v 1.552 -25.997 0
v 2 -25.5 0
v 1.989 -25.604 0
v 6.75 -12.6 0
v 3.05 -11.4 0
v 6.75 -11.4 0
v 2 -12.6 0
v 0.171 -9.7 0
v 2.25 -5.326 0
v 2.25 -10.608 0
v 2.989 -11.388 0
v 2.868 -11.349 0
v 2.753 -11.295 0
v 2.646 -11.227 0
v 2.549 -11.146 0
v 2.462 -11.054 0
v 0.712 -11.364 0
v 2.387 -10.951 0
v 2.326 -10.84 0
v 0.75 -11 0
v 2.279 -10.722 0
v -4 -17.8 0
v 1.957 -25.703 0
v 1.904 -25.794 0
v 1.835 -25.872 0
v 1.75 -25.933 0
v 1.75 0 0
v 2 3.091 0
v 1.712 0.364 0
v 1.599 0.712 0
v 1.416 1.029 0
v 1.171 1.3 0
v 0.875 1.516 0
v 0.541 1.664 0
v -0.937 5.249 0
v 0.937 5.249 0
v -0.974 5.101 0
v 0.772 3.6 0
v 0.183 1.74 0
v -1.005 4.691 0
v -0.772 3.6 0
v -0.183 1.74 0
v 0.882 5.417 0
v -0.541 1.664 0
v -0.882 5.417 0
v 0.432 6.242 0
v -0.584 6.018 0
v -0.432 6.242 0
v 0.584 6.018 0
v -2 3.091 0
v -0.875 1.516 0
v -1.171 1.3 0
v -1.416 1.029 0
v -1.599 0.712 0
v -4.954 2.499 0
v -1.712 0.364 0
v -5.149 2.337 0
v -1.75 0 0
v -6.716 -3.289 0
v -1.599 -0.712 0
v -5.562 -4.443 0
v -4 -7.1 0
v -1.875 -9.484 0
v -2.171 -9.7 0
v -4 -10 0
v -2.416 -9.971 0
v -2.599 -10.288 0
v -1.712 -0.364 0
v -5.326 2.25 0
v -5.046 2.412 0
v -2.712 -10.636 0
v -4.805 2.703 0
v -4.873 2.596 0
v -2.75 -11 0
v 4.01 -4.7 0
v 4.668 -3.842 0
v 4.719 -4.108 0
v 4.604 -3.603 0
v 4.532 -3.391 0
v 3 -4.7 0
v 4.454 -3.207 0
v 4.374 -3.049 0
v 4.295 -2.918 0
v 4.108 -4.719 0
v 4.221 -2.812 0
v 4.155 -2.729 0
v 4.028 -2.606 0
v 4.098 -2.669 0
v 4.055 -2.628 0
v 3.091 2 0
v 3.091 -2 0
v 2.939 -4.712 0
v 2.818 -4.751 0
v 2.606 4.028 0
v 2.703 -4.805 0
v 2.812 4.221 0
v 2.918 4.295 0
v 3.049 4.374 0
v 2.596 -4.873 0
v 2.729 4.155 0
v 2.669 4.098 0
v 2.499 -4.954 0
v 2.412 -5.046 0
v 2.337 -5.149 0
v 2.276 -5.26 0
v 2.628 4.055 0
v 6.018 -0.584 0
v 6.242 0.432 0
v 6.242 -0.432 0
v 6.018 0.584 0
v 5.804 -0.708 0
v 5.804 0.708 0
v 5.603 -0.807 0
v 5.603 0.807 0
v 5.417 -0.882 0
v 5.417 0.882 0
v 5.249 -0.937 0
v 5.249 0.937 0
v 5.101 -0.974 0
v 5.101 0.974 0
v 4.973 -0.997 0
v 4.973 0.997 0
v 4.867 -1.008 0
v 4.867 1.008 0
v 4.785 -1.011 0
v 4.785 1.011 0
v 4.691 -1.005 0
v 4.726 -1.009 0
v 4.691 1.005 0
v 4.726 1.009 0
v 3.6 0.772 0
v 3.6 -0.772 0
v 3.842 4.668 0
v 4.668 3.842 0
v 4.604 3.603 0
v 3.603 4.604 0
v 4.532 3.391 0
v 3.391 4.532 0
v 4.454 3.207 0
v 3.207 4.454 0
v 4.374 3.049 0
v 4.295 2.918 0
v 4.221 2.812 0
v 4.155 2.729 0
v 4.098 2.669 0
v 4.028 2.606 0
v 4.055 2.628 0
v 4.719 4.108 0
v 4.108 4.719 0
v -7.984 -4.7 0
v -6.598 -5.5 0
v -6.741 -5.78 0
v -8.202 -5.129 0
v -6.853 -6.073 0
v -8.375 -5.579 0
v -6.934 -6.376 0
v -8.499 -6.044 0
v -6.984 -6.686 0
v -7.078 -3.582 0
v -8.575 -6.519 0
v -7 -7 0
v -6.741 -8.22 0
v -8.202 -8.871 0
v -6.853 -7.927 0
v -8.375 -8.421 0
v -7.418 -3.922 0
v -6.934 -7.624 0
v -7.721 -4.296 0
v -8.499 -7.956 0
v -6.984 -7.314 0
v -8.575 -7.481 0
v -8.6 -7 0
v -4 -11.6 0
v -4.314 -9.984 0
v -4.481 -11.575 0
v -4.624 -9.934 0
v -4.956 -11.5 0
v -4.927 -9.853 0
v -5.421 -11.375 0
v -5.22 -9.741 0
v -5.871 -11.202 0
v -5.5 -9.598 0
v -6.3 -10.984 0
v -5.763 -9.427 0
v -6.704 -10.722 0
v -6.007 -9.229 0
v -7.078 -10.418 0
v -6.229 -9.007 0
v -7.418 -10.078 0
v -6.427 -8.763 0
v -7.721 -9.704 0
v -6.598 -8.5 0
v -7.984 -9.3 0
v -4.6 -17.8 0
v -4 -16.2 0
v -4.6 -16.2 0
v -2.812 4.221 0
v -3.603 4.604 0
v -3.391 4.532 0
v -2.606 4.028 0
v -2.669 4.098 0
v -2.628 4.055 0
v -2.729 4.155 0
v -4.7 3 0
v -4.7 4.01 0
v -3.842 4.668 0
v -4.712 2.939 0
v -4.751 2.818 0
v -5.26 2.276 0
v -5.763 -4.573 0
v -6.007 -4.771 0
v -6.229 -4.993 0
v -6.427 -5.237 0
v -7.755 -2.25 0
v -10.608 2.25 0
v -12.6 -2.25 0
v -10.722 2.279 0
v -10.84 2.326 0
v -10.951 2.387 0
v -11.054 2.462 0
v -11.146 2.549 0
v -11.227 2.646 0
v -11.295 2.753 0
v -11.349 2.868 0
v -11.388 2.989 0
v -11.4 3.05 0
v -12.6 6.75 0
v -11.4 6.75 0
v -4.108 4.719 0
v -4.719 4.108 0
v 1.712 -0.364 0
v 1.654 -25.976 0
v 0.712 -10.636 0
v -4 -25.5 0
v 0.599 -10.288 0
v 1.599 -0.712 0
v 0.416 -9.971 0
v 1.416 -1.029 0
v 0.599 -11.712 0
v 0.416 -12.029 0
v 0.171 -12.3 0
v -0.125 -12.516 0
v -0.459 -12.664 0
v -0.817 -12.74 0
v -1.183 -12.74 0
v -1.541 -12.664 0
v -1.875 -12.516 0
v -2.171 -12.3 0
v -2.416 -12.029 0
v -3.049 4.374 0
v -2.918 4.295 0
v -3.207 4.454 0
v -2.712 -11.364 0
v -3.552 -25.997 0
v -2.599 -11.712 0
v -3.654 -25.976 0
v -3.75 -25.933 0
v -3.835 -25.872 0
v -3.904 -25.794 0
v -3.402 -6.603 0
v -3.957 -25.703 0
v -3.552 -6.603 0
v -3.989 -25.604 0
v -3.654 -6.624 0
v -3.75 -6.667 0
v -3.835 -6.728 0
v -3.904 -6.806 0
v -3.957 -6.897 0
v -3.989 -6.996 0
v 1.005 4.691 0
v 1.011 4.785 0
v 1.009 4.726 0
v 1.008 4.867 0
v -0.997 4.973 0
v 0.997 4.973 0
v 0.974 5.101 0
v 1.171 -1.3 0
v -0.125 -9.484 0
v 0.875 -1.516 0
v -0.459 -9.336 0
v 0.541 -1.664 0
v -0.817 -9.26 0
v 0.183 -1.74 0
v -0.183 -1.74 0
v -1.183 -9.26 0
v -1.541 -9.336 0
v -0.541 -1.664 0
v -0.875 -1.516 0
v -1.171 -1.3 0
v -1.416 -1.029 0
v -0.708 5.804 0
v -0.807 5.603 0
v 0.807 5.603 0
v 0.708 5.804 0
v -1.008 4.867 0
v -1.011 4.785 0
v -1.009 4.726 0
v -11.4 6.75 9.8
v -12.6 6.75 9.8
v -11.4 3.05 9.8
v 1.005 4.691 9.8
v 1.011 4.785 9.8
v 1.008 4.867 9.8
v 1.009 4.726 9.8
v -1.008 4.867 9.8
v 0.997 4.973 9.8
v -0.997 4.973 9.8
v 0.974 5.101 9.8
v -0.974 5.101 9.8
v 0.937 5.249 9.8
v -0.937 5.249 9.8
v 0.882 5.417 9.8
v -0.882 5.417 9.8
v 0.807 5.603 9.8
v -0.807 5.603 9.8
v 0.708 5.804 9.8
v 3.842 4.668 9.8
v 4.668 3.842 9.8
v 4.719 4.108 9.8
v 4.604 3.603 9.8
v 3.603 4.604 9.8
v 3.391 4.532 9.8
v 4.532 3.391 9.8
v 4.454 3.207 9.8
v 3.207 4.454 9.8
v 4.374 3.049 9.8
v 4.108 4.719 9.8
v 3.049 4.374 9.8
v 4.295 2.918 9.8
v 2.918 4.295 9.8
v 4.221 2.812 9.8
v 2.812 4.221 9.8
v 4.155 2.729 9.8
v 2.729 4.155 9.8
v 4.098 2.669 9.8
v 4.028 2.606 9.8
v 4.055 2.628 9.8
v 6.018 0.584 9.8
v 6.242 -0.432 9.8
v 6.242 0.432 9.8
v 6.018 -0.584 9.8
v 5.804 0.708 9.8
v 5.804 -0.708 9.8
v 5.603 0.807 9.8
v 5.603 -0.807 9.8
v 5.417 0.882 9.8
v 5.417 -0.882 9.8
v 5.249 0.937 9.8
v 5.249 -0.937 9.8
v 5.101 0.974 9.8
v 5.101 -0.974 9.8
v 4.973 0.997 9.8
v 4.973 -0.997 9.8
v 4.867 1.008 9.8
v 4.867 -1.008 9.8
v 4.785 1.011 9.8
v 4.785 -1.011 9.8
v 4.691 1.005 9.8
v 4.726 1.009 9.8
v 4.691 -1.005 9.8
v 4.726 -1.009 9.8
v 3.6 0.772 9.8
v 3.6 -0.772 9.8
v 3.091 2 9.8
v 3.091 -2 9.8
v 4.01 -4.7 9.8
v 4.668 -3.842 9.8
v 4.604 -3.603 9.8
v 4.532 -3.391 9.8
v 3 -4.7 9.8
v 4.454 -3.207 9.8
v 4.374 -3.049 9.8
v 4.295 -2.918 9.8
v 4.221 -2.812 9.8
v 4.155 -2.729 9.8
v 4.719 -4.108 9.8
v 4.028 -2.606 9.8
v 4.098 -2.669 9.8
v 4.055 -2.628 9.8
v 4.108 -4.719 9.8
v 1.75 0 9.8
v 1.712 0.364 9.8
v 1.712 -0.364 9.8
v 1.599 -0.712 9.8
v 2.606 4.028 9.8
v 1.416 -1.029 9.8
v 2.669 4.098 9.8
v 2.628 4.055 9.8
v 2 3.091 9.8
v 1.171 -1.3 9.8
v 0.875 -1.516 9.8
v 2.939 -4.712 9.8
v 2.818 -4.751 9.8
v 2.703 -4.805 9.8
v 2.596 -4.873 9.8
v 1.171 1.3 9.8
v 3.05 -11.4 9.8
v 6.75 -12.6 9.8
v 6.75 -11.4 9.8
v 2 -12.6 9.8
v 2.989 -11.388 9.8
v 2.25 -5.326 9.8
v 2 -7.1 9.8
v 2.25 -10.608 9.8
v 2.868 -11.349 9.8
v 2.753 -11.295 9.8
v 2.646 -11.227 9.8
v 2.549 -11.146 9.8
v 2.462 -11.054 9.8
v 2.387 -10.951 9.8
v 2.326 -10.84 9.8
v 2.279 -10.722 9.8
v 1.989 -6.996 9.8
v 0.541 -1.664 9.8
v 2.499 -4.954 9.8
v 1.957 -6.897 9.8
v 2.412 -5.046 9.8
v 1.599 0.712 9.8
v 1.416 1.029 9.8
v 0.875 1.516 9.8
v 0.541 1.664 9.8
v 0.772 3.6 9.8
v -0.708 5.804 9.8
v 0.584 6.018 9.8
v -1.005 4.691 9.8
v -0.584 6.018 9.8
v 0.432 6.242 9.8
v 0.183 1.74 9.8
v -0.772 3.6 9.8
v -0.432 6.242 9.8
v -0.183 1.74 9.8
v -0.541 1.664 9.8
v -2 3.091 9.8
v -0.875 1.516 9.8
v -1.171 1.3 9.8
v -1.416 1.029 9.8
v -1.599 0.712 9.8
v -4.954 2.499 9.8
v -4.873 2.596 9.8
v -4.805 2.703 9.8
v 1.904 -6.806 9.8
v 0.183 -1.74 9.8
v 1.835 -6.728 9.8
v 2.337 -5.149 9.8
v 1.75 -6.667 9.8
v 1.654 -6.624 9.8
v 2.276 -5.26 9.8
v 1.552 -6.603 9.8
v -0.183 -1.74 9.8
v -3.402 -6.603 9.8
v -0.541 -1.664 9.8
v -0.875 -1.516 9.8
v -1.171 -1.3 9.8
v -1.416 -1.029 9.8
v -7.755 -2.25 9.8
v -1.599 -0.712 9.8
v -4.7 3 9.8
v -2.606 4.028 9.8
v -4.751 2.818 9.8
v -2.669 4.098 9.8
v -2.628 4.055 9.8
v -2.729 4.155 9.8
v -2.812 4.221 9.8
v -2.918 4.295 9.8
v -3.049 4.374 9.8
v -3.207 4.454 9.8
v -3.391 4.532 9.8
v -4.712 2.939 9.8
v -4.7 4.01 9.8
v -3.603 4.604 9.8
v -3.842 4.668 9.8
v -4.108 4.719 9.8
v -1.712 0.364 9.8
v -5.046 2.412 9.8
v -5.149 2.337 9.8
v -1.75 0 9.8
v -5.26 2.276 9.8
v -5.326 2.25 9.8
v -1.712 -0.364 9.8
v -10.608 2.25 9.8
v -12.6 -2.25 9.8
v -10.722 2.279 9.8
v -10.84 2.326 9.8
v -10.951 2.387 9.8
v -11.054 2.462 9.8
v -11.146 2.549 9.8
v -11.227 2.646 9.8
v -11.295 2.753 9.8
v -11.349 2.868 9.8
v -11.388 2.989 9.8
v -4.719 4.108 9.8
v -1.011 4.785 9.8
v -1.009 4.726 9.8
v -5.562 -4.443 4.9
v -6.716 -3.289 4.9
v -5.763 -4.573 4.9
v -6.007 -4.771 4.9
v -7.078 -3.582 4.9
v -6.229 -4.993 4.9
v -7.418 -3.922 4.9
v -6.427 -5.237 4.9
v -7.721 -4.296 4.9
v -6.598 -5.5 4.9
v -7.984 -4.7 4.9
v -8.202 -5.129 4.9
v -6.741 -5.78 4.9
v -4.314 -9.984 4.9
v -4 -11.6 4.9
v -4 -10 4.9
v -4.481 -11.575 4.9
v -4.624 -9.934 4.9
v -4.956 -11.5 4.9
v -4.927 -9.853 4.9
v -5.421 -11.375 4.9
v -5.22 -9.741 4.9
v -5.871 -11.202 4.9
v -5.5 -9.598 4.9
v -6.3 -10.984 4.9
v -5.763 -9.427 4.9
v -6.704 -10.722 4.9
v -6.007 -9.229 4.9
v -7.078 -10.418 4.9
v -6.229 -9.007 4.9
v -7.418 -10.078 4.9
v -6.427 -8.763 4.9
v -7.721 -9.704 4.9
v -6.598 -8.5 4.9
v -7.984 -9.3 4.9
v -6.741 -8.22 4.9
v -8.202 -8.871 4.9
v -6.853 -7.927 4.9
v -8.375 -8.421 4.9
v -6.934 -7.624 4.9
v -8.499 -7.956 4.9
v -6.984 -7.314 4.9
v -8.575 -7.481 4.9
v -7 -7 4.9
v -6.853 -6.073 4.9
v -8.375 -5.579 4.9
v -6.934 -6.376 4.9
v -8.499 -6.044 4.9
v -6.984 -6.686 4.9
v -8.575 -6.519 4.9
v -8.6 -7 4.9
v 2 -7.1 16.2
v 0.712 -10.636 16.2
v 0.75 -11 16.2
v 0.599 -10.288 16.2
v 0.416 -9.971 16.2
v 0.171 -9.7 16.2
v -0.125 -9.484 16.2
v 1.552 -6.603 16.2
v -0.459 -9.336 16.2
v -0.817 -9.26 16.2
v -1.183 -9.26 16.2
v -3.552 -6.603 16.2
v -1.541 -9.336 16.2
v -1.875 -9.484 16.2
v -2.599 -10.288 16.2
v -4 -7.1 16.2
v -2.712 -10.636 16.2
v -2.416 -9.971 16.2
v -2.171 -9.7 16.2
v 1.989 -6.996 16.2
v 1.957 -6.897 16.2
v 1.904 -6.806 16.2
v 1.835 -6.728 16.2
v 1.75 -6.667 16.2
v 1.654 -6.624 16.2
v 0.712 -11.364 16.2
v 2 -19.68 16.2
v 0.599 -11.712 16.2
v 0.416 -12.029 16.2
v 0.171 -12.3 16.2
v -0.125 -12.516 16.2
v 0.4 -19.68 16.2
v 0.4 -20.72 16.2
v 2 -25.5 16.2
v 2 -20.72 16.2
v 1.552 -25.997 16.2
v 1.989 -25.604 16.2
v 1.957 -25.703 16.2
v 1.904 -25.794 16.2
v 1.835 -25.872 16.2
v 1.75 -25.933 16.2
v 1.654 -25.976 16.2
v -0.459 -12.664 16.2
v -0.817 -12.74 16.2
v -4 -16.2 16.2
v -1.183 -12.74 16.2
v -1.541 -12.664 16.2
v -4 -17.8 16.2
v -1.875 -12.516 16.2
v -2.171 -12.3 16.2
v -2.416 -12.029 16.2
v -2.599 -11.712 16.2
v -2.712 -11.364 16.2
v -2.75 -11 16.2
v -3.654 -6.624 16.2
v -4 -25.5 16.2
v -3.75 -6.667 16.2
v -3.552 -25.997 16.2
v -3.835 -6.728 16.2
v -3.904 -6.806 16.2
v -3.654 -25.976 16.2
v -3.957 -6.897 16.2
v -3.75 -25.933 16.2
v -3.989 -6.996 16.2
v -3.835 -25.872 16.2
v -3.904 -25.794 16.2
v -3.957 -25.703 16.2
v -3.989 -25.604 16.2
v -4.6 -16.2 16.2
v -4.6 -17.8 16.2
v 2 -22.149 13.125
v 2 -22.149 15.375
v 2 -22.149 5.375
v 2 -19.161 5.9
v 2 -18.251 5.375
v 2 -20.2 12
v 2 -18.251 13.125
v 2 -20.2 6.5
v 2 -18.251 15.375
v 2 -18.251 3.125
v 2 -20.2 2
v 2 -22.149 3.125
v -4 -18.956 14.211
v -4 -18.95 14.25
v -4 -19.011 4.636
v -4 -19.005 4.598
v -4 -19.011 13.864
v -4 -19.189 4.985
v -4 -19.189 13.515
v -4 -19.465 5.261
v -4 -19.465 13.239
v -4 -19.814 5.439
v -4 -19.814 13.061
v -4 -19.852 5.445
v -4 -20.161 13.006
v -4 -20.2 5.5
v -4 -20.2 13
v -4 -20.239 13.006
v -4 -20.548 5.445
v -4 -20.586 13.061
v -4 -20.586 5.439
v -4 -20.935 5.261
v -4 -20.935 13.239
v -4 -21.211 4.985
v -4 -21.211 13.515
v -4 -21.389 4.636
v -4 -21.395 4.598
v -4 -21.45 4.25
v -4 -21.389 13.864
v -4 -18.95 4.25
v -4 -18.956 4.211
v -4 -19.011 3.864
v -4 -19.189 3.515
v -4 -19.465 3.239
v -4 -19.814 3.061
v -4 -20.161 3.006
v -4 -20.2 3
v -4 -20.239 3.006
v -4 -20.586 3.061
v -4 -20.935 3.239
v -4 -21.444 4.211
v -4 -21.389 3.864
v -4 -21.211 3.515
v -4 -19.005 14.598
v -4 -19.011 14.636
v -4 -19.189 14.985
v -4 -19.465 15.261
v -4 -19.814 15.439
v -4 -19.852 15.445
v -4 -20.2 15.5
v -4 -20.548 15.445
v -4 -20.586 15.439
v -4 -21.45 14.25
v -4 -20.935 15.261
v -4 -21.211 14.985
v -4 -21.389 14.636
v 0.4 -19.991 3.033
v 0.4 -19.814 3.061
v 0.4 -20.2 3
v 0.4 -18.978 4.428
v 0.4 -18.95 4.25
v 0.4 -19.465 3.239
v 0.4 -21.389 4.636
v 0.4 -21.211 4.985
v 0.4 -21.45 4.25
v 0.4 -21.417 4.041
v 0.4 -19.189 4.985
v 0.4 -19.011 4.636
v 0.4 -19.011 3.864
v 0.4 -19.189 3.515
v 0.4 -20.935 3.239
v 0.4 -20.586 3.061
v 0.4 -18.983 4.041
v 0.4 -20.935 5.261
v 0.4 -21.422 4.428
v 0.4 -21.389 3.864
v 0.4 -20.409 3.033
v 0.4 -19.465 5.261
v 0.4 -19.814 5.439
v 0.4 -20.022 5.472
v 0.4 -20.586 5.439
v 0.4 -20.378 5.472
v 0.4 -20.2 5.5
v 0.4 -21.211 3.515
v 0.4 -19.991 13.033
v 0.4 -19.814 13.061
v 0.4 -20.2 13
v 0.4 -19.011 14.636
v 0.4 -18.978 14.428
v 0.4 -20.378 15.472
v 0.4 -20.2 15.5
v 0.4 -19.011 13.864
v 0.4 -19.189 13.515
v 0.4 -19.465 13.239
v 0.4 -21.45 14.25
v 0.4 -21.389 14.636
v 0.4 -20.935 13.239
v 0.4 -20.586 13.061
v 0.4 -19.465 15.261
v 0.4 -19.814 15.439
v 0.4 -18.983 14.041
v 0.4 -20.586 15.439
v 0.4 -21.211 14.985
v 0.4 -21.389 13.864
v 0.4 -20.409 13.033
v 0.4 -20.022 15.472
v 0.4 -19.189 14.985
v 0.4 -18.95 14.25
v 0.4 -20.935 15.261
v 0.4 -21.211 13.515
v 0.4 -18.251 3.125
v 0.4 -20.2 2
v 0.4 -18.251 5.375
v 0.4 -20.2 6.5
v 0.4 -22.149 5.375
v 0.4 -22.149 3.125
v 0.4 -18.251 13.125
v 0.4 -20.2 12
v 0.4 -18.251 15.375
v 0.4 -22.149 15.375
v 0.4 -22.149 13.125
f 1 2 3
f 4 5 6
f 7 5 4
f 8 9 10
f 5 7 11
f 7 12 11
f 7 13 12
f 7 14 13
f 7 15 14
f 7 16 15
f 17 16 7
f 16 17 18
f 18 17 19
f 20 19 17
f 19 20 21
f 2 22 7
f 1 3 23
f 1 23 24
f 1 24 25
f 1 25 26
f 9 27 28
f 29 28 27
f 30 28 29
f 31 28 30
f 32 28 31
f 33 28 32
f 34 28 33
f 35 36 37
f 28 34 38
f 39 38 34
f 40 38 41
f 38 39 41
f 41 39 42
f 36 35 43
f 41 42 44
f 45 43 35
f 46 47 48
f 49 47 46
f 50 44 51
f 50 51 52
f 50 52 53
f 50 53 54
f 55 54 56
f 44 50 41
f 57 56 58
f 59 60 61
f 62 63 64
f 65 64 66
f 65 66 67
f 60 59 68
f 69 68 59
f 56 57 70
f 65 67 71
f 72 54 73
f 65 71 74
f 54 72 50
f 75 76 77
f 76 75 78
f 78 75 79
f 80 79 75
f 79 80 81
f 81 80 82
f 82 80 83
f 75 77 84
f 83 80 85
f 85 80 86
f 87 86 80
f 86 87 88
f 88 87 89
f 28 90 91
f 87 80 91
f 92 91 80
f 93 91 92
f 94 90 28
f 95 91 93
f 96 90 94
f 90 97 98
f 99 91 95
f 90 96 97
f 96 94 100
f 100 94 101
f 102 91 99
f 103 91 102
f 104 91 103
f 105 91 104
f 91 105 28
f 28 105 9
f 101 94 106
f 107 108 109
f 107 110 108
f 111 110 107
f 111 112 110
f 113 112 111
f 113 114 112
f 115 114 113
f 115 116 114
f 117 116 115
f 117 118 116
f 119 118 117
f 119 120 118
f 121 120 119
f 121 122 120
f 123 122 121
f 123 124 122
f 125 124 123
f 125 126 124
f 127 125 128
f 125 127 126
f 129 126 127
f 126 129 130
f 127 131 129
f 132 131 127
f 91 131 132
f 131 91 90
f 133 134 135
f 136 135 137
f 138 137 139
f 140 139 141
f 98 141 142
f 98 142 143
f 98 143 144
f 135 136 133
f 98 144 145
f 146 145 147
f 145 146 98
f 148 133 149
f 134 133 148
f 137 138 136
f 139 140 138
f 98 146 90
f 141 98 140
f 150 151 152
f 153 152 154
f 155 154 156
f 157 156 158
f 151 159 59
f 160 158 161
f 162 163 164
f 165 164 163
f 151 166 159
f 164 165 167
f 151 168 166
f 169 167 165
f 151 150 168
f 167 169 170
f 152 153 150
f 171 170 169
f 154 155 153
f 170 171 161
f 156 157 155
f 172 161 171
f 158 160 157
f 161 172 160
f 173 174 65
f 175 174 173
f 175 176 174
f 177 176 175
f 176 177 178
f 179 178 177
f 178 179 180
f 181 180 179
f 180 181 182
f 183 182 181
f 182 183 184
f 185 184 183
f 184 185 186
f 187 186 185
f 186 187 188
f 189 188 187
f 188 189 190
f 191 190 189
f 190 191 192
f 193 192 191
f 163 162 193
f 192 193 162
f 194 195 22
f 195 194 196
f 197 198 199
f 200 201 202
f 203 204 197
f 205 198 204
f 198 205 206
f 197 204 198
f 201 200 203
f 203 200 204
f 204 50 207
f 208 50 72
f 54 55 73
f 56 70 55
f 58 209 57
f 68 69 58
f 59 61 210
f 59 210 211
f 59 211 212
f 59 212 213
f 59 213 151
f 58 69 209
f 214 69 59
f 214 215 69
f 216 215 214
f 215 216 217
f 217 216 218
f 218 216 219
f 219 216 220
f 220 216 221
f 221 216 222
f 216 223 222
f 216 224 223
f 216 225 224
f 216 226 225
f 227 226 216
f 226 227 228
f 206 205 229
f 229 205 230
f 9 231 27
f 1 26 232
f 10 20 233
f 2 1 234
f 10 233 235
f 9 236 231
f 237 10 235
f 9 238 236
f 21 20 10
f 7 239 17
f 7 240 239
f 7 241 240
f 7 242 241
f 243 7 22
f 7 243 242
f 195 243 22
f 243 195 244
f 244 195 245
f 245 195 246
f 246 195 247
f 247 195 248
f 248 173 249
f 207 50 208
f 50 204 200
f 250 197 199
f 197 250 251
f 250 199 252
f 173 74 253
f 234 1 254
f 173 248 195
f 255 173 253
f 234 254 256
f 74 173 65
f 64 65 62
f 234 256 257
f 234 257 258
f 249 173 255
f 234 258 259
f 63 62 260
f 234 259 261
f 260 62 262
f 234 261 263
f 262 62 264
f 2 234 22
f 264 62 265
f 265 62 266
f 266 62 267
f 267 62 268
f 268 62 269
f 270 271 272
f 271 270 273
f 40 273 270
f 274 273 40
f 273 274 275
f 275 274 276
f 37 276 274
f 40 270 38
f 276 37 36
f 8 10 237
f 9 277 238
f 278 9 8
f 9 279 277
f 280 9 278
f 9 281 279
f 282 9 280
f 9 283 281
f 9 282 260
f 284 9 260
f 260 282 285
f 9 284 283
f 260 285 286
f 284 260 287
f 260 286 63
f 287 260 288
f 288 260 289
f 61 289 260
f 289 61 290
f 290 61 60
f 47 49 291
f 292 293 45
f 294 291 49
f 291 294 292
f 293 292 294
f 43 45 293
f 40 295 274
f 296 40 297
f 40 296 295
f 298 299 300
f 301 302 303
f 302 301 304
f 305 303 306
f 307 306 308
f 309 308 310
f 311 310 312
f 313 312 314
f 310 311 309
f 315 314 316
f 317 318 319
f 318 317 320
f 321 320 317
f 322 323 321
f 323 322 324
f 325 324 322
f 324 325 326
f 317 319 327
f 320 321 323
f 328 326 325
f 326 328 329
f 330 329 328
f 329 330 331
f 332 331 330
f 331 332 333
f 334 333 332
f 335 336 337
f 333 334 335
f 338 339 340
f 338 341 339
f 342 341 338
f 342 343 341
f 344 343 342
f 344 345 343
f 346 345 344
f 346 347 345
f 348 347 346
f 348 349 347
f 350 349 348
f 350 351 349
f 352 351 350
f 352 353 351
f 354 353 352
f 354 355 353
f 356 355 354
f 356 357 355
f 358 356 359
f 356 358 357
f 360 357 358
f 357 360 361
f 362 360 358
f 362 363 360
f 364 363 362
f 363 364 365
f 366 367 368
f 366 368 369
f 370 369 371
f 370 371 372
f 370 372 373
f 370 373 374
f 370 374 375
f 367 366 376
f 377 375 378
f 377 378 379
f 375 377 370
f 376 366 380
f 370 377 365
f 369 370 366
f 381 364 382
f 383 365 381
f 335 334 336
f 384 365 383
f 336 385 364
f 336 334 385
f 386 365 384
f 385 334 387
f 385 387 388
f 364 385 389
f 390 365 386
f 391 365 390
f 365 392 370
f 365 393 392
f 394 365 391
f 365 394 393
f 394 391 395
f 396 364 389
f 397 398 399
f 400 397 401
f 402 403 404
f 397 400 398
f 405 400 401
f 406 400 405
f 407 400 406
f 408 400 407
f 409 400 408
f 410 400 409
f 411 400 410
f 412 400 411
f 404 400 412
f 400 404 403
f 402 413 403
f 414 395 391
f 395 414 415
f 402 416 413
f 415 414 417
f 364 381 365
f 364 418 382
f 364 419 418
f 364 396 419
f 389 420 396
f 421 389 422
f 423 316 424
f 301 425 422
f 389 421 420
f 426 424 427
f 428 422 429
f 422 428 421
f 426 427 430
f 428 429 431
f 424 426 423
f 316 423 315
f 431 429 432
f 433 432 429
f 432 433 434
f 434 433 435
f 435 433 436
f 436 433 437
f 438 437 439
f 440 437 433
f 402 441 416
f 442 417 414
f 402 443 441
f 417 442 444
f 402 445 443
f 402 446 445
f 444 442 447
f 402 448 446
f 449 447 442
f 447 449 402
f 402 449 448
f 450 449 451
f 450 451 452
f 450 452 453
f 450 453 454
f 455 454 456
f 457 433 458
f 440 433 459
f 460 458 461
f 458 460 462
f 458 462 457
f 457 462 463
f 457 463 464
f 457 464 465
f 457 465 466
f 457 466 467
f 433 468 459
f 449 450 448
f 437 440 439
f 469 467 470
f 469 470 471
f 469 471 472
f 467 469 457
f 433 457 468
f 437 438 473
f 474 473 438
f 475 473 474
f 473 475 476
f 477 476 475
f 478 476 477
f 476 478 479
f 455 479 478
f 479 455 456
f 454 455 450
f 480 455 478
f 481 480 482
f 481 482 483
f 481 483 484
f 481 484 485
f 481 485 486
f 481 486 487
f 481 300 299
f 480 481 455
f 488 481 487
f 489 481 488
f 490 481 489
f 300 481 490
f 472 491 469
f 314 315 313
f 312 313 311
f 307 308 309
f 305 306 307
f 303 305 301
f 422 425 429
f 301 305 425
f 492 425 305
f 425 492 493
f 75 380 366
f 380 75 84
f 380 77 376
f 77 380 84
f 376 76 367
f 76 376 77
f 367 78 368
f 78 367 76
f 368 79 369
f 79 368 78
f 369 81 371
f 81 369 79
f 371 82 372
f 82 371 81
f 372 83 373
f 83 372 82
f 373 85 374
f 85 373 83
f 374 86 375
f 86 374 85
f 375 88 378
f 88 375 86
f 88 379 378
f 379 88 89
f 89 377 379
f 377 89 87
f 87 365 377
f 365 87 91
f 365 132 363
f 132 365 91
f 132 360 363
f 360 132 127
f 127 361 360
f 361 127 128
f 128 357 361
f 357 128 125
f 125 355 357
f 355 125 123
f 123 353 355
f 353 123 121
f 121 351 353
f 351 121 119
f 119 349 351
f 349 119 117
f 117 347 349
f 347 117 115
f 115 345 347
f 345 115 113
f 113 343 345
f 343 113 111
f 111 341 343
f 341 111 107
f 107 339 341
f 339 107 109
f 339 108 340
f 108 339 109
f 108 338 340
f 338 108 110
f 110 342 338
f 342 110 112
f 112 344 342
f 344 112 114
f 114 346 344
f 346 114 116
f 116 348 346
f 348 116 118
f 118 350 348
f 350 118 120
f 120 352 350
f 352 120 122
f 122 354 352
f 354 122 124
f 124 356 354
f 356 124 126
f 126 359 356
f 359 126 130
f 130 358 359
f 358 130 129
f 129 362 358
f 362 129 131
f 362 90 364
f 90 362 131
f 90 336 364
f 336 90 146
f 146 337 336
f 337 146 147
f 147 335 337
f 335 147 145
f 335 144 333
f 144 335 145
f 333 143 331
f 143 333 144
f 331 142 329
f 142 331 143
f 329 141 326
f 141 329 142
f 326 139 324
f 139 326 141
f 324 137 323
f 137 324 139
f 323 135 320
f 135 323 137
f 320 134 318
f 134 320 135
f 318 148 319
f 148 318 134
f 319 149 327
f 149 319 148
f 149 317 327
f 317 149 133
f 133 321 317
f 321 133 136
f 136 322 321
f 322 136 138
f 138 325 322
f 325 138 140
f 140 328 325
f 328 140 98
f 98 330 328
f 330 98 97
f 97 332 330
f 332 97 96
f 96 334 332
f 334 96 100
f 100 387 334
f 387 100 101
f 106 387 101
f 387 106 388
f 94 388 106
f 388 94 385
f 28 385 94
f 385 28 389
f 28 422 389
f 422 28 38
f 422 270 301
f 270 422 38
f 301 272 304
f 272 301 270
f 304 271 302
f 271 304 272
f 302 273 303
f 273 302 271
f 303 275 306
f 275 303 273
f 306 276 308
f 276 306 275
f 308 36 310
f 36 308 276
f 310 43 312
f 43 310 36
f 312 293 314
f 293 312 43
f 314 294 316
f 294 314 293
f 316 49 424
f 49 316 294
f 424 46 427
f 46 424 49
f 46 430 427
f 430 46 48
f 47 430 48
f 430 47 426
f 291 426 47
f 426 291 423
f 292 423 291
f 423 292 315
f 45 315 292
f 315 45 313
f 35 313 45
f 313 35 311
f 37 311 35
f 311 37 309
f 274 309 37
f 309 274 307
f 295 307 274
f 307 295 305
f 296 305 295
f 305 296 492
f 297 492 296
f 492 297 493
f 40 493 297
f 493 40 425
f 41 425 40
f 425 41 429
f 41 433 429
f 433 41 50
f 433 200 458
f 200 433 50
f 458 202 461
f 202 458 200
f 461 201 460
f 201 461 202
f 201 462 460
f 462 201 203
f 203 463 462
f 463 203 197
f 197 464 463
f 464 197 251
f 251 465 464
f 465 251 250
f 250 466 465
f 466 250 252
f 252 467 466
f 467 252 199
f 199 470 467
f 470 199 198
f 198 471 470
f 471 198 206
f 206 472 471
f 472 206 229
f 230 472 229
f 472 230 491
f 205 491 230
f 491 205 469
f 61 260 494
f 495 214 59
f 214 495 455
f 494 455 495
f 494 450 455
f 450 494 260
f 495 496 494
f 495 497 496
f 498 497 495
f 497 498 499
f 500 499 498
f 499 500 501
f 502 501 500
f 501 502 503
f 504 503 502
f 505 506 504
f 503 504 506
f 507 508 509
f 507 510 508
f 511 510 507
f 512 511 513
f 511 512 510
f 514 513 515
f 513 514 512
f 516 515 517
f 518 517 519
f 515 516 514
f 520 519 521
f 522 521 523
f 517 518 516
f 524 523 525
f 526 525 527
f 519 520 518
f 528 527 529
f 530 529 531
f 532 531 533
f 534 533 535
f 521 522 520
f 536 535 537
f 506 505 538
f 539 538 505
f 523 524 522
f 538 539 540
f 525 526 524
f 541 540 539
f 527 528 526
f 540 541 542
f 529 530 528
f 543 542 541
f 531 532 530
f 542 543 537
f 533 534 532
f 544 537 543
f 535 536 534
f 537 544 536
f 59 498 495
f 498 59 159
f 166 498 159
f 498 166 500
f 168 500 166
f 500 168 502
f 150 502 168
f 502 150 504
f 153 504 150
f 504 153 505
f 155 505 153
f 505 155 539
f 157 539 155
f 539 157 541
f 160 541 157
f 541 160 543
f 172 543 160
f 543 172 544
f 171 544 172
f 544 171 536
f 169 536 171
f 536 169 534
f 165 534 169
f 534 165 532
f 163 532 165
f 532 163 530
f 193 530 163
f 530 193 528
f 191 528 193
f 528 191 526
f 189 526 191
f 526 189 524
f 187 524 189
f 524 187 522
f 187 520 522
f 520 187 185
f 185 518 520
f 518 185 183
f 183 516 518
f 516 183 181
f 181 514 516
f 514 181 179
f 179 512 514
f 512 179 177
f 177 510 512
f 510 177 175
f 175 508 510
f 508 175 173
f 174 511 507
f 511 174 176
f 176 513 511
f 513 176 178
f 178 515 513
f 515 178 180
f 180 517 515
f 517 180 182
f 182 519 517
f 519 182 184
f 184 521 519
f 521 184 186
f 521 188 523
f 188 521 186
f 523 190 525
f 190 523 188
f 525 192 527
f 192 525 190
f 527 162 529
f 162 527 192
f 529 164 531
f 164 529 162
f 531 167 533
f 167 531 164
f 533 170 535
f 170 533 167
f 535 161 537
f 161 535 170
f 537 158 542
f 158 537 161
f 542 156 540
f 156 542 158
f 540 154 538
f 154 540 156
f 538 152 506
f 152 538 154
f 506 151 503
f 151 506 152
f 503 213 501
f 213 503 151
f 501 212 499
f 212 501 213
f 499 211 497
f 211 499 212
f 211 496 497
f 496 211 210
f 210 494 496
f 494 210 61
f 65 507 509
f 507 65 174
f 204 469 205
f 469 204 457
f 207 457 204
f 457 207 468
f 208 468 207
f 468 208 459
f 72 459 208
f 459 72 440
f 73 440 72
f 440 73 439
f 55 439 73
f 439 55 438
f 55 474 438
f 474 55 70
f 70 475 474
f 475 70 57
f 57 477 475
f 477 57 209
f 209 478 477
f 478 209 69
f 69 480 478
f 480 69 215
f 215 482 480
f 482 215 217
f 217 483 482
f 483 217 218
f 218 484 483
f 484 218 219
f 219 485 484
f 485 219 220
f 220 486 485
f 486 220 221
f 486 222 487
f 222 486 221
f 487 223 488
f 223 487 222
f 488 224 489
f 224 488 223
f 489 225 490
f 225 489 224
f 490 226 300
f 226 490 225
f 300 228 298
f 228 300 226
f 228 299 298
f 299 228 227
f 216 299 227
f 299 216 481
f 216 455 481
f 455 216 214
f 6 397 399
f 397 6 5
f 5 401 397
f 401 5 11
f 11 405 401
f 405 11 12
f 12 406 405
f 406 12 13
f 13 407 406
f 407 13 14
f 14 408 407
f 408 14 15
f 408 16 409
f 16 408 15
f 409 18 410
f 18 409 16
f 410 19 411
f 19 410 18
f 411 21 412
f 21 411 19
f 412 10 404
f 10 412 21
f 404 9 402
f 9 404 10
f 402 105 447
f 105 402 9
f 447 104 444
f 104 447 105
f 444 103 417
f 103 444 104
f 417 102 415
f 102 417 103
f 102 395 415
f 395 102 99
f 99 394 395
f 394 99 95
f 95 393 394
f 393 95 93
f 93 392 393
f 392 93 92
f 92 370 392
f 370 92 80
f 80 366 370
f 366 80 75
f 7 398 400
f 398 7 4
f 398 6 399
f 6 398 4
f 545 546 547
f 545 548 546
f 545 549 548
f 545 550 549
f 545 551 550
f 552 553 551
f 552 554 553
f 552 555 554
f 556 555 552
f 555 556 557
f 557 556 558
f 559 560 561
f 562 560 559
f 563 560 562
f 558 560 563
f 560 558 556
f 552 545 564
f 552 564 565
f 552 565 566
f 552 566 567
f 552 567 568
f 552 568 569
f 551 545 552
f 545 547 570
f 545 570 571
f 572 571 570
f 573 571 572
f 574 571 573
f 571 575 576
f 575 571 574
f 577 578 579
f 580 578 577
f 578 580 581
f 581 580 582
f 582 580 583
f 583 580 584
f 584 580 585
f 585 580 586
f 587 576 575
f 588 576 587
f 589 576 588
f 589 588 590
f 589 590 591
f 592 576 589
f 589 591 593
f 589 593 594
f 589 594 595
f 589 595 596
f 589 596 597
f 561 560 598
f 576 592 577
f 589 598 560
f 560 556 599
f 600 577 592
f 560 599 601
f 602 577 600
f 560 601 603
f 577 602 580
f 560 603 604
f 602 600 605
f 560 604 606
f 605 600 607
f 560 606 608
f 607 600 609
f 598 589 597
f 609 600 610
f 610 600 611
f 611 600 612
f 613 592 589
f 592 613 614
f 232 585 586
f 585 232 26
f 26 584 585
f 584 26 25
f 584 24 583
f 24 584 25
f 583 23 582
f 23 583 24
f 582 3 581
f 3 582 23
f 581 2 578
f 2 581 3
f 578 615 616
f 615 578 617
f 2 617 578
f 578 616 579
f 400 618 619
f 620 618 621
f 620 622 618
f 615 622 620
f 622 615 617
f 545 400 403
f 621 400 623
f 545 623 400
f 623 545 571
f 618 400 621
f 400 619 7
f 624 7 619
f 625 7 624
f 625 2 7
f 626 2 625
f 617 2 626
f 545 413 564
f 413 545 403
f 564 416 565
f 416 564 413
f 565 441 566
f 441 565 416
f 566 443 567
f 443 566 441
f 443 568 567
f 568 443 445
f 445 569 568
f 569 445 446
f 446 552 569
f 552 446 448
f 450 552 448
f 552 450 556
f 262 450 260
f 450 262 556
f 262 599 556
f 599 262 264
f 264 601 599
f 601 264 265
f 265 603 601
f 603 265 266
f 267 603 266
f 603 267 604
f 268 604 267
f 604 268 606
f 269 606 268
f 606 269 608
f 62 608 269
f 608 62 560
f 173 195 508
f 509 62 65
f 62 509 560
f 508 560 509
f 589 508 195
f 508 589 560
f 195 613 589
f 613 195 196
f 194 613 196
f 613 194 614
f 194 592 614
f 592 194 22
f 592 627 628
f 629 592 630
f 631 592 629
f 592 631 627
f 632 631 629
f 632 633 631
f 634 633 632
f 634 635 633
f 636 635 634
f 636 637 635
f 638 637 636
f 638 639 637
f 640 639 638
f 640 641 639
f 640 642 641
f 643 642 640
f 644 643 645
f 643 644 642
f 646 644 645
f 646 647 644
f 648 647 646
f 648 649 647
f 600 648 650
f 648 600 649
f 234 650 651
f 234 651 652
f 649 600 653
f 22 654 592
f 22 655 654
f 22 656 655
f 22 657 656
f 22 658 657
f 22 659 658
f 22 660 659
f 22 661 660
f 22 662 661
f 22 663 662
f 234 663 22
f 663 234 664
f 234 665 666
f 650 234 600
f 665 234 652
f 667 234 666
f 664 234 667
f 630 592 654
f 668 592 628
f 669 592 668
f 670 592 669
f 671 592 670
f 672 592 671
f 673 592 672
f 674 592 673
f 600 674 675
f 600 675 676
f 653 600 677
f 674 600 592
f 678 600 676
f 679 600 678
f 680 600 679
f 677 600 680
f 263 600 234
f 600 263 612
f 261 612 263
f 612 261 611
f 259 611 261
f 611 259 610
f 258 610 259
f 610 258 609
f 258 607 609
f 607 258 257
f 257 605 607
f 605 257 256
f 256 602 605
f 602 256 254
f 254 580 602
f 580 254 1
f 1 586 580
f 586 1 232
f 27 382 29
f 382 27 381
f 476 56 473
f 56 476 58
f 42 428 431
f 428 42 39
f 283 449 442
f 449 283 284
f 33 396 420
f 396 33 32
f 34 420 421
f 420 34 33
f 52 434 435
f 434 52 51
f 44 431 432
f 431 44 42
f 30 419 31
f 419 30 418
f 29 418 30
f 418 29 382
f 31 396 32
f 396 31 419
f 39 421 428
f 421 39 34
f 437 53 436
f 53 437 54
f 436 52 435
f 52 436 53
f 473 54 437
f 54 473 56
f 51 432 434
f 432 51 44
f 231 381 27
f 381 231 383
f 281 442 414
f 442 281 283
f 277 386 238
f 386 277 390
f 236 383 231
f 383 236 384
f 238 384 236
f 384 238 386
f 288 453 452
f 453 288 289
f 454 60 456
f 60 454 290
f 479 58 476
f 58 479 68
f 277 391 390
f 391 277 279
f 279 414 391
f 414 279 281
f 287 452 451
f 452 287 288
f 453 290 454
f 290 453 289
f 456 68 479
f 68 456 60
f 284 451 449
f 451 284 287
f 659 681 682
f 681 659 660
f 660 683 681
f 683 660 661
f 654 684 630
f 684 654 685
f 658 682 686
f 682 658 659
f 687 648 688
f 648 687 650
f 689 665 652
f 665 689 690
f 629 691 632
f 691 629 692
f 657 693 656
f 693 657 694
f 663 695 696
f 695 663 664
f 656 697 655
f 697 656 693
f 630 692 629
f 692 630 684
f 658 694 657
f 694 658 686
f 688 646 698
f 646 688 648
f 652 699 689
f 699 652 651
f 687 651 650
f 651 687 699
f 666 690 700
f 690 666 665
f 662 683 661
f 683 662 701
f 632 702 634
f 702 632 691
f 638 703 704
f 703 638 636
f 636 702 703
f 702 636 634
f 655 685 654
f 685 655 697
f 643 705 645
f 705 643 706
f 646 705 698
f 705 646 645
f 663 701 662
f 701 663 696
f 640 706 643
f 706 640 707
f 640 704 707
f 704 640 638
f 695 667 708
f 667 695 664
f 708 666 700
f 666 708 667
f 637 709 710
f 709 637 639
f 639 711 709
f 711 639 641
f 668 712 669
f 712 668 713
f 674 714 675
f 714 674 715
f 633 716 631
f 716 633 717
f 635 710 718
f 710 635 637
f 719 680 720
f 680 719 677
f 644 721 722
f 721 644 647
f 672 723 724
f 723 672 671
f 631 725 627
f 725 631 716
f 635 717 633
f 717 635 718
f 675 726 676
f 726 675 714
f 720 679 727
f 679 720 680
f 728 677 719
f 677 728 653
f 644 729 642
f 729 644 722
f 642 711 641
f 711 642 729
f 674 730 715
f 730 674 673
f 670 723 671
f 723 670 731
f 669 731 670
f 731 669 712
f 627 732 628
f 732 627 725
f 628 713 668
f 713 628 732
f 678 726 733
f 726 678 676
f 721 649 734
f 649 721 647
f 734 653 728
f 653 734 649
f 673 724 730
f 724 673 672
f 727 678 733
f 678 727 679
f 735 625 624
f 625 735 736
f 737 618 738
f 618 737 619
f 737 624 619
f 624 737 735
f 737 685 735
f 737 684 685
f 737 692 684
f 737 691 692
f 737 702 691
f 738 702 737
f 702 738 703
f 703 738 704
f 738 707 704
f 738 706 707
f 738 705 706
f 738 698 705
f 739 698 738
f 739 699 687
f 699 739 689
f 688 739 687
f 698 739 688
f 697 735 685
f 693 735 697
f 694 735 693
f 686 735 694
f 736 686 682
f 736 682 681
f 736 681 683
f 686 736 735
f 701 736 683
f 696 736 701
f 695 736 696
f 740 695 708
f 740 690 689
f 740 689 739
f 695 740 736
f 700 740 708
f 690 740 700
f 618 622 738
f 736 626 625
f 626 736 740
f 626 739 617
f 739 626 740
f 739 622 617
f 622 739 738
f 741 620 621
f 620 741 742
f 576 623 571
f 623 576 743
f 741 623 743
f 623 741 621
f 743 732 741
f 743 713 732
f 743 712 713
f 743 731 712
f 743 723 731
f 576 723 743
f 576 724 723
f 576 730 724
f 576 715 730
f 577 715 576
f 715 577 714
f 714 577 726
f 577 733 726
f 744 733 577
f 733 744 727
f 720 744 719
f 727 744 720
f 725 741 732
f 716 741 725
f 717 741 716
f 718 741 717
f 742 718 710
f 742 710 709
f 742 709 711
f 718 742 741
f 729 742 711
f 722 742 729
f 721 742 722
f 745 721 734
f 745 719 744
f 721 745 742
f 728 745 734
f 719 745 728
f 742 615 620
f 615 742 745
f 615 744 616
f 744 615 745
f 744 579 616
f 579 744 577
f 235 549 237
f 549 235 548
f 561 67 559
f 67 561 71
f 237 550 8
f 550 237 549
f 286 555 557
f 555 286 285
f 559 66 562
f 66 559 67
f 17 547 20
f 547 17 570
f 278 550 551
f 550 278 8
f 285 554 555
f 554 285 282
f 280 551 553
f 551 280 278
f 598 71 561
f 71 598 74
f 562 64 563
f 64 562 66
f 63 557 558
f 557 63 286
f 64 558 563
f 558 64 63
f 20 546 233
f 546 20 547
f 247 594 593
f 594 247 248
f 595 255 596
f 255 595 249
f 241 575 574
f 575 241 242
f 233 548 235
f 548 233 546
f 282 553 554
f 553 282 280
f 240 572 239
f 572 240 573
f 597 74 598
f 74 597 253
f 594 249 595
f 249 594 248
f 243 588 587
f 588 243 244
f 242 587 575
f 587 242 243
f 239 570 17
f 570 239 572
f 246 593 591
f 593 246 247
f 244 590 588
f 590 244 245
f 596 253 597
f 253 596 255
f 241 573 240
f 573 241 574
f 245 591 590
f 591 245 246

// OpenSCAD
// file: rack_and_pinion.scad
// Rack and pinion gears GPL (c) SASA October 2013.
//
// Very simple rack and pinion gear based on GPL code.
//
// I've made corrections to both rack and gear code I used (below) and unified
// and simplified both bits of code.  Corrects the use of circular pitch so
// rack and pinion match nicely.  Ammendments to the code and interface to
// simplify use and improve readability. Many bells and whistles dropped in
// favour of being dead simple.  I also opted for hard wiring the pressure
// angle to 20 degrees since this seemed a kind of standard.
//
// Based on the works (thanks!): Parametric Involute Bevel and Spur Gears by
// GregFrost GNU GPL license.  http://www.thingiverse.com/thing:3575 Parametric
// Modular Rack by Mark "Ckaos" Moissette GNU GPL license.  (Rack based on the
// work of MattMoses and Fdavies
// http://forums.reprap.org/read.php?1,51452,52099#msg-52099 and Forrest Higgs:
// 
// The originals have many fine additions such as helical gears which I've
// dropped in favour of simplicity (as befits my needs) - it wouldn't be a big
// jobs to nobble my changes backwards or their features forwards.

pi=3.1415926535897932384626433832795;
$fn=50;

// examples of usage
// include this in your code:
// use <rack_and_pinion.scad>
// then:
// a simple rack
// rack(4,20,10,1);//CP (mm/tooth), width (teeth), thickness(of base) (mm), # teeth
// a simple pinion and translation / rotation to make it mesh the rack
// translate([0,-8.5,0])rotate([0,0,360/10/2]) pinion(4,10,10,5);


rack (4,18,10,3);

translate([0,-12,0]) rotate([0,0,13]) pinion(4,8,10,4);


module rack(cp, N, width, thickness){
// cp = circular pitch - for rack = pitch in mm/per tooth
// N = number of teeth
// width = width of rack in teeth
// thickness = thickness of support under teeth (0 for no support)

	a = 1.0*cp/pi; // addendum (also known as "module")
	d = 1.1*cp/pi; // dedendum (this is set by a standard)
	height=(d+a);

	// find the tangent of pressure angle once
	tanPA = tan(20);
	// length of bottom and top horizontal segments of tooth profile
	botL = (cp/2 - 2*d*tanPA);
	topL = (cp/2 - 2*a*tanPA);

	slantLng=tanPA*height;
	realBase=2*slantLng+topL;

	offset=topL+botL+2*slantLng;
	length=(realBase+botL)*N;

	supportSize=width;
	translate([botL/2,0,0])
	rotate([90,0,0]){
		translate([0,supportSize/2,0]){
			union(){
				cube(size=[length,width,thickness],center=true);
				for (i = [0:N-1]){
					translate([i*offset-length/2+realBase/2,0,thickness/2]){
						trapezoid([topL,supportSize],[realBase,supportSize],height);
						}
					}
				}
			}
		}
	}

module pinion (cp, N, width, shaft_diameter, backlash=0){
// cp= circular pitch - for pinion pitch in mm/per as measured along the ptich radius (~1/2 way up tooth)
// N= number of teeth
// width= width of the gear
// shaft_diameter= diameter of hole for shaft
// backlash - I think this is just a bodge for making things fit when printed but I never tested it

	if (cp==false && diametral_pitch==false) 
		echo("MCAD ERROR: pinion module needs either a diametral_pitch or cp");

	//Convert diametrial pitch to our native circular pitch
	cp = (cp!=false?cp:180/diametral_pitch);

	// Pitch diameter: Diameter of pitch circle.
	pitch_diameter  =  N * cp / pi;
	pitch_radius = pitch_diameter/2;
	echo ("Teeth:", N, " Pitch radius:", pitch_radius);
	// Base Circle
	base_radius = pitch_radius*cos(20);

	// Addendum: Radial distance from pitch circle to outside circle.
	addendum = cp/pi;

	//Outer Circle
	outer_radius = pitch_radius+addendum;

	// Dedendum: Radial distance from pitch circle to root diameter
	dedendum = addendum*1.1;

	// Root diameter: Diameter of bottom of tooth spaces.
	root_radius = pitch_radius-dedendum;

	backlash_angle = backlash / pitch_radius * 180 / pi;
	half_thick_angle = (360 / N - backlash_angle) / 4;

	difference(){
		linear_extrude (height=width, convexity=10, twist=0)
		pinion_shape(N, pitch_radius = pitch_radius, root_radius = root_radius,
			base_radius = base_radius, outer_radius = outer_radius,
			half_thick_angle = half_thick_angle, involute_facets=0);

		translate([0,0,-1]) cylinder(r=shaft_diameter/2,h=2+width);
		}

	echo("Root radius =",root_radius,"\nPitch radius=",pitch_radius,"\n Tip radius=",outer_radius,"\n");
	}

module pinion_shape ( N, pitch_radius, root_radius, base_radius, outer_radius, half_thick_angle, involute_facets) {
	union(){
		rotate (half_thick_angle) circle ($fn=N*2, r=root_radius);
		for (i = [1:N]) {
			rotate ([0,0,i*360/N]) {
				involute_pinion_tooth (
					pitch_radius = pitch_radius,
					root_radius = root_radius,
					base_radius = base_radius,
					outer_radius = outer_radius,
					half_thick_angle = half_thick_angle,
					involute_facets=involute_facets);
				}
			}
		}
	}

module involute_pinion_tooth ( pitch_radius, root_radius, base_radius, outer_radius, half_thick_angle, involute_facets) {
	min_radius = max (base_radius,root_radius);

	pitch_point = involute (base_radius, involute_intersect_angle (base_radius, pitch_radius));
	pitch_angle = atan2 (pitch_point[1], pitch_point[0]);
	centre_angle = pitch_angle + half_thick_angle;

	start_angle = involute_intersect_angle (base_radius, min_radius);
	stop_angle = involute_intersect_angle (base_radius, outer_radius);

	res=(involute_facets!=0)?involute_facets:($fn==0)?5:$fn/4;

	union () {
		for (i=[1:res])
        {
		point1=involute (base_radius,start_angle+(stop_angle - start_angle)*(i-1)/res);
        point2=involute (base_radius,start_angle+(stop_angle - start_angle)*i/res);
            
			
				side1_point1=rotate_point (centre_angle, point1);
				side1_point2=rotate_point (centre_angle, point2);
				side2_point1=mirror_point (rotate_point (centre_angle, point1));
				side2_point2=mirror_point (rotate_point (centre_angle, point2));
                
				polygon ( points=[[0,0],side1_point1,side1_point2,side2_point2,side2_point1], paths=[[0,1,2,3,4,0]]);
				
			}
		}
	}

// Mathematical Functions
//===============

// Finds the angle of the involute about the base radius at the given distance (radius) from it's center.
//source: http://www.mathhelpforum.com/math-help/geometry/136011-circle-involute-solving-y-any-given-x.html

function involute_intersect_angle (base_radius, radius) = sqrt (pow (radius/base_radius, 2) - 1) * 180 / pi;

// Calculate the involute position for a given base radius and involute angle.

function rotated_involute(rotate,base_radius,involute_angle)=[cos(rotate)*involute(base_radius, involute_angle)[0]+sin(rotate)*involute(base_radius, involute_angle)[1],cos(rotate)*involute(base_radius, involute_angle)[1]-sin(rotate)*involute(base_radius, involute_angle)[0]];

function mirror_point(coord)=[coord[0],-coord[1]];

function rotate_point(rotate,coord)=[cos(rotate)*coord[0]+sin(rotate)*coord[1],cos(rotate)*coord[1]-sin(rotate)*coord[0]];

function involute (base_radius, involute_angle)=[base_radius*(cos(involute_angle)+involute_angle*pi/180*sin(involute_angle)),base_radius*(sin(involute_angle)-involute_angle*pi/180*cos(involute_angle))];




module trapezoid(top,base,height){
	//echo ("test",base[0]);
	basePT1=[ -base[0]/2, base[1]/2, 0];
	basePT2=[ base[0]/2, base[1]/2, 0];
	basePT3=[ base[0]/2, -base[1]/2, 0];
	basePT4=[ -base[0]/2, -base[1]/2, 0];
	topPT1=[ -top[0]/2, top[1]/2, height];
	topPT2=[ top[0]/2, top[1]/2, height];
	topPT3=[ top[0]/2, -top[1]/2, height];
	topPT4=[ -top[0]/2, -top[1]/2, height];
	polyhedron(points=[ basePT1, basePT2, basePT3, basePT4, topPT1, topPT2, topPT3, topPT4],faces=[[0,1,2], [0,2,3],[3,7,0], [7,4,0],[1,6,2], [1,5,6],[2,6,3], [3,6,7],[5,1,0],[4,5,0],[7,5,4],[5,7,6]]);
	}
// main file
//%rotate([0,0,-90])translate([65.6,44.5,0])import("../stl/z-pinion.stl");
use<rack_and_pinion.scad>;
ep=0.01;
m3_slot=3.5;
//translate([-1+.15+12,11,0])import("../stl/z-rack-short.stl");
pinion_t=9.8;
mount_t=16.2;

module axle()
{
    pinion(4,8,pinion_t,0);
}


module down_stop()
{
    pin_off=12;
    pin_l=13.5;
    pin_yy=4.5;
    pin_w=1.2;
    //pin
    translate([-pin_off,pin_yy/2])square([pin_w,pin_l-pin_yy],center=true);
    //arm
    
    translate([-pin_off/2,0])square([pin_off,pin_l-pin_yy*2],center=true);
    //fillet at corner
    fillet_r=1;
    translate([-ep,-ep])difference()
    {
        translate([-pin_off+pin_w/2+fillet_r,.5*(pin_l-pin_yy*2)+fillet_r])square([fillet_r*2,fillet_r*2],center=true);
        translate([-pin_off+pin_w/2+fillet_r,.5*(pin_l-pin_yy*2)+fillet_r])circle(r=fillet_r+ep,center=true,$fn=50);
        translate([-pin_off+pin_w/2+fillet_r+fillet_r,.5*(pin_l-pin_yy*2)+fillet_r])square([fillet_r*2+ep,fillet_r*2+ep],center=true);
        translate([-pin_off+pin_w/2+fillet_r,fillet_r+.5*(pin_l-pin_yy*2)+fillet_r])square([fillet_r*2+ep,fillet_r*2+ep],center=true);
    }
    //manually placed, strengthing bit
    translate([-3.7,2.1])square([2,4],center=true);
    translate([ep,-ep])translate([-3.7-2,2.1+1.1])difference()
    {
        translate([0,0])square([fillet_r*2,fillet_r*2],center=true);
        translate([0,0])circle(r=fillet_r+ep,center=true,$fn=50);
        translate([-fillet_r,0])square([fillet_r*2+ep,fillet_r*2+ep],center=true);
        translate([0,fillet_r])square([fillet_r*2+ep,fillet_r*2+ep],center=true);
    }
}
module up_stop()
{
    mirror([1,-1,0])down_stop();
}

module switch_block()
{
    block_w=6;
    xx_nudge=-1;
    yy_nudge=6.6;
    arm_l=26-yy_nudge;
    round=.5;
    minkowski()
    {
        translate([xx_nudge,-arm_l/2-yy_nudge])square([block_w-round*2,arm_l-round*2],center=true);
        circle(r=round,$fn=30);
    }
    //mounting ridge
    translate([-3.8,-17])square([1.6,1.6],center=true);
}
module holes()
{
    yy_zip=-20.2;
    //rotation axle
    cylinder(r=m3_slot/2,h=mount_t*3,center=true,$fn=30);
    //zip ties
    translate([0,yy_zip,4.25])rotate([0,90,0])cylinder(r=2.5/2,h=10,center=true,$fn=20);
    translate([0,yy_zip,4.25+10])rotate([0,90,0])cylinder(r=2.5/2,h=10,center=true,$fn=20);
    //groove
    /*hull()
    {
        translate([1.9,yy_zip,4.25])rotate([0,90,0])cylinder(r=2.5/2,h=3,center=true,$fn=20);
        translate([1.9,yy_zip,4.25+10])rotate([0,90,0])cylinder(r=2.5/2,h=3,center=true,$fn=20);
    }*/
    translate([1.9,yy_zip,4.25])rotate([0,90,0])cylinder(r=4.5/2,h=3,center=true,$fn=6);
    translate([1.9,yy_zip,4.25+10])rotate([0,90,0])cylinder(r=4.5/2,h=3,center=true,$fn=6);
    //spring pull
    translate([-1,-11,0])cylinder(r=m3_slot/2,h=mount_t*3,center=true,$fn=30);
}
module inside_corner()
{
    //triangle
    linear_extrude(pinion_t)hull()
    {
        translate([-5,0])square([10,ep],center=true);
        translate([0,-5])square([ep,10],center=true);
    }
    //annulus
    translate([-4,-7,0])linear_extrude(pinion_t/2)difference()
    {
        circle(r=4.6,$fn=60);
        circle(r=3,$fn=60);
    }
}
module final()
{

    difference()
    {
        union()
        {
            axle();
            linear_extrude(pinion_t)down_stop();
            linear_extrude(pinion_t)up_stop();
            linear_extrude(mount_t)switch_block();
            inside_corner();
        }
        holes();
        
    }
}
final();
